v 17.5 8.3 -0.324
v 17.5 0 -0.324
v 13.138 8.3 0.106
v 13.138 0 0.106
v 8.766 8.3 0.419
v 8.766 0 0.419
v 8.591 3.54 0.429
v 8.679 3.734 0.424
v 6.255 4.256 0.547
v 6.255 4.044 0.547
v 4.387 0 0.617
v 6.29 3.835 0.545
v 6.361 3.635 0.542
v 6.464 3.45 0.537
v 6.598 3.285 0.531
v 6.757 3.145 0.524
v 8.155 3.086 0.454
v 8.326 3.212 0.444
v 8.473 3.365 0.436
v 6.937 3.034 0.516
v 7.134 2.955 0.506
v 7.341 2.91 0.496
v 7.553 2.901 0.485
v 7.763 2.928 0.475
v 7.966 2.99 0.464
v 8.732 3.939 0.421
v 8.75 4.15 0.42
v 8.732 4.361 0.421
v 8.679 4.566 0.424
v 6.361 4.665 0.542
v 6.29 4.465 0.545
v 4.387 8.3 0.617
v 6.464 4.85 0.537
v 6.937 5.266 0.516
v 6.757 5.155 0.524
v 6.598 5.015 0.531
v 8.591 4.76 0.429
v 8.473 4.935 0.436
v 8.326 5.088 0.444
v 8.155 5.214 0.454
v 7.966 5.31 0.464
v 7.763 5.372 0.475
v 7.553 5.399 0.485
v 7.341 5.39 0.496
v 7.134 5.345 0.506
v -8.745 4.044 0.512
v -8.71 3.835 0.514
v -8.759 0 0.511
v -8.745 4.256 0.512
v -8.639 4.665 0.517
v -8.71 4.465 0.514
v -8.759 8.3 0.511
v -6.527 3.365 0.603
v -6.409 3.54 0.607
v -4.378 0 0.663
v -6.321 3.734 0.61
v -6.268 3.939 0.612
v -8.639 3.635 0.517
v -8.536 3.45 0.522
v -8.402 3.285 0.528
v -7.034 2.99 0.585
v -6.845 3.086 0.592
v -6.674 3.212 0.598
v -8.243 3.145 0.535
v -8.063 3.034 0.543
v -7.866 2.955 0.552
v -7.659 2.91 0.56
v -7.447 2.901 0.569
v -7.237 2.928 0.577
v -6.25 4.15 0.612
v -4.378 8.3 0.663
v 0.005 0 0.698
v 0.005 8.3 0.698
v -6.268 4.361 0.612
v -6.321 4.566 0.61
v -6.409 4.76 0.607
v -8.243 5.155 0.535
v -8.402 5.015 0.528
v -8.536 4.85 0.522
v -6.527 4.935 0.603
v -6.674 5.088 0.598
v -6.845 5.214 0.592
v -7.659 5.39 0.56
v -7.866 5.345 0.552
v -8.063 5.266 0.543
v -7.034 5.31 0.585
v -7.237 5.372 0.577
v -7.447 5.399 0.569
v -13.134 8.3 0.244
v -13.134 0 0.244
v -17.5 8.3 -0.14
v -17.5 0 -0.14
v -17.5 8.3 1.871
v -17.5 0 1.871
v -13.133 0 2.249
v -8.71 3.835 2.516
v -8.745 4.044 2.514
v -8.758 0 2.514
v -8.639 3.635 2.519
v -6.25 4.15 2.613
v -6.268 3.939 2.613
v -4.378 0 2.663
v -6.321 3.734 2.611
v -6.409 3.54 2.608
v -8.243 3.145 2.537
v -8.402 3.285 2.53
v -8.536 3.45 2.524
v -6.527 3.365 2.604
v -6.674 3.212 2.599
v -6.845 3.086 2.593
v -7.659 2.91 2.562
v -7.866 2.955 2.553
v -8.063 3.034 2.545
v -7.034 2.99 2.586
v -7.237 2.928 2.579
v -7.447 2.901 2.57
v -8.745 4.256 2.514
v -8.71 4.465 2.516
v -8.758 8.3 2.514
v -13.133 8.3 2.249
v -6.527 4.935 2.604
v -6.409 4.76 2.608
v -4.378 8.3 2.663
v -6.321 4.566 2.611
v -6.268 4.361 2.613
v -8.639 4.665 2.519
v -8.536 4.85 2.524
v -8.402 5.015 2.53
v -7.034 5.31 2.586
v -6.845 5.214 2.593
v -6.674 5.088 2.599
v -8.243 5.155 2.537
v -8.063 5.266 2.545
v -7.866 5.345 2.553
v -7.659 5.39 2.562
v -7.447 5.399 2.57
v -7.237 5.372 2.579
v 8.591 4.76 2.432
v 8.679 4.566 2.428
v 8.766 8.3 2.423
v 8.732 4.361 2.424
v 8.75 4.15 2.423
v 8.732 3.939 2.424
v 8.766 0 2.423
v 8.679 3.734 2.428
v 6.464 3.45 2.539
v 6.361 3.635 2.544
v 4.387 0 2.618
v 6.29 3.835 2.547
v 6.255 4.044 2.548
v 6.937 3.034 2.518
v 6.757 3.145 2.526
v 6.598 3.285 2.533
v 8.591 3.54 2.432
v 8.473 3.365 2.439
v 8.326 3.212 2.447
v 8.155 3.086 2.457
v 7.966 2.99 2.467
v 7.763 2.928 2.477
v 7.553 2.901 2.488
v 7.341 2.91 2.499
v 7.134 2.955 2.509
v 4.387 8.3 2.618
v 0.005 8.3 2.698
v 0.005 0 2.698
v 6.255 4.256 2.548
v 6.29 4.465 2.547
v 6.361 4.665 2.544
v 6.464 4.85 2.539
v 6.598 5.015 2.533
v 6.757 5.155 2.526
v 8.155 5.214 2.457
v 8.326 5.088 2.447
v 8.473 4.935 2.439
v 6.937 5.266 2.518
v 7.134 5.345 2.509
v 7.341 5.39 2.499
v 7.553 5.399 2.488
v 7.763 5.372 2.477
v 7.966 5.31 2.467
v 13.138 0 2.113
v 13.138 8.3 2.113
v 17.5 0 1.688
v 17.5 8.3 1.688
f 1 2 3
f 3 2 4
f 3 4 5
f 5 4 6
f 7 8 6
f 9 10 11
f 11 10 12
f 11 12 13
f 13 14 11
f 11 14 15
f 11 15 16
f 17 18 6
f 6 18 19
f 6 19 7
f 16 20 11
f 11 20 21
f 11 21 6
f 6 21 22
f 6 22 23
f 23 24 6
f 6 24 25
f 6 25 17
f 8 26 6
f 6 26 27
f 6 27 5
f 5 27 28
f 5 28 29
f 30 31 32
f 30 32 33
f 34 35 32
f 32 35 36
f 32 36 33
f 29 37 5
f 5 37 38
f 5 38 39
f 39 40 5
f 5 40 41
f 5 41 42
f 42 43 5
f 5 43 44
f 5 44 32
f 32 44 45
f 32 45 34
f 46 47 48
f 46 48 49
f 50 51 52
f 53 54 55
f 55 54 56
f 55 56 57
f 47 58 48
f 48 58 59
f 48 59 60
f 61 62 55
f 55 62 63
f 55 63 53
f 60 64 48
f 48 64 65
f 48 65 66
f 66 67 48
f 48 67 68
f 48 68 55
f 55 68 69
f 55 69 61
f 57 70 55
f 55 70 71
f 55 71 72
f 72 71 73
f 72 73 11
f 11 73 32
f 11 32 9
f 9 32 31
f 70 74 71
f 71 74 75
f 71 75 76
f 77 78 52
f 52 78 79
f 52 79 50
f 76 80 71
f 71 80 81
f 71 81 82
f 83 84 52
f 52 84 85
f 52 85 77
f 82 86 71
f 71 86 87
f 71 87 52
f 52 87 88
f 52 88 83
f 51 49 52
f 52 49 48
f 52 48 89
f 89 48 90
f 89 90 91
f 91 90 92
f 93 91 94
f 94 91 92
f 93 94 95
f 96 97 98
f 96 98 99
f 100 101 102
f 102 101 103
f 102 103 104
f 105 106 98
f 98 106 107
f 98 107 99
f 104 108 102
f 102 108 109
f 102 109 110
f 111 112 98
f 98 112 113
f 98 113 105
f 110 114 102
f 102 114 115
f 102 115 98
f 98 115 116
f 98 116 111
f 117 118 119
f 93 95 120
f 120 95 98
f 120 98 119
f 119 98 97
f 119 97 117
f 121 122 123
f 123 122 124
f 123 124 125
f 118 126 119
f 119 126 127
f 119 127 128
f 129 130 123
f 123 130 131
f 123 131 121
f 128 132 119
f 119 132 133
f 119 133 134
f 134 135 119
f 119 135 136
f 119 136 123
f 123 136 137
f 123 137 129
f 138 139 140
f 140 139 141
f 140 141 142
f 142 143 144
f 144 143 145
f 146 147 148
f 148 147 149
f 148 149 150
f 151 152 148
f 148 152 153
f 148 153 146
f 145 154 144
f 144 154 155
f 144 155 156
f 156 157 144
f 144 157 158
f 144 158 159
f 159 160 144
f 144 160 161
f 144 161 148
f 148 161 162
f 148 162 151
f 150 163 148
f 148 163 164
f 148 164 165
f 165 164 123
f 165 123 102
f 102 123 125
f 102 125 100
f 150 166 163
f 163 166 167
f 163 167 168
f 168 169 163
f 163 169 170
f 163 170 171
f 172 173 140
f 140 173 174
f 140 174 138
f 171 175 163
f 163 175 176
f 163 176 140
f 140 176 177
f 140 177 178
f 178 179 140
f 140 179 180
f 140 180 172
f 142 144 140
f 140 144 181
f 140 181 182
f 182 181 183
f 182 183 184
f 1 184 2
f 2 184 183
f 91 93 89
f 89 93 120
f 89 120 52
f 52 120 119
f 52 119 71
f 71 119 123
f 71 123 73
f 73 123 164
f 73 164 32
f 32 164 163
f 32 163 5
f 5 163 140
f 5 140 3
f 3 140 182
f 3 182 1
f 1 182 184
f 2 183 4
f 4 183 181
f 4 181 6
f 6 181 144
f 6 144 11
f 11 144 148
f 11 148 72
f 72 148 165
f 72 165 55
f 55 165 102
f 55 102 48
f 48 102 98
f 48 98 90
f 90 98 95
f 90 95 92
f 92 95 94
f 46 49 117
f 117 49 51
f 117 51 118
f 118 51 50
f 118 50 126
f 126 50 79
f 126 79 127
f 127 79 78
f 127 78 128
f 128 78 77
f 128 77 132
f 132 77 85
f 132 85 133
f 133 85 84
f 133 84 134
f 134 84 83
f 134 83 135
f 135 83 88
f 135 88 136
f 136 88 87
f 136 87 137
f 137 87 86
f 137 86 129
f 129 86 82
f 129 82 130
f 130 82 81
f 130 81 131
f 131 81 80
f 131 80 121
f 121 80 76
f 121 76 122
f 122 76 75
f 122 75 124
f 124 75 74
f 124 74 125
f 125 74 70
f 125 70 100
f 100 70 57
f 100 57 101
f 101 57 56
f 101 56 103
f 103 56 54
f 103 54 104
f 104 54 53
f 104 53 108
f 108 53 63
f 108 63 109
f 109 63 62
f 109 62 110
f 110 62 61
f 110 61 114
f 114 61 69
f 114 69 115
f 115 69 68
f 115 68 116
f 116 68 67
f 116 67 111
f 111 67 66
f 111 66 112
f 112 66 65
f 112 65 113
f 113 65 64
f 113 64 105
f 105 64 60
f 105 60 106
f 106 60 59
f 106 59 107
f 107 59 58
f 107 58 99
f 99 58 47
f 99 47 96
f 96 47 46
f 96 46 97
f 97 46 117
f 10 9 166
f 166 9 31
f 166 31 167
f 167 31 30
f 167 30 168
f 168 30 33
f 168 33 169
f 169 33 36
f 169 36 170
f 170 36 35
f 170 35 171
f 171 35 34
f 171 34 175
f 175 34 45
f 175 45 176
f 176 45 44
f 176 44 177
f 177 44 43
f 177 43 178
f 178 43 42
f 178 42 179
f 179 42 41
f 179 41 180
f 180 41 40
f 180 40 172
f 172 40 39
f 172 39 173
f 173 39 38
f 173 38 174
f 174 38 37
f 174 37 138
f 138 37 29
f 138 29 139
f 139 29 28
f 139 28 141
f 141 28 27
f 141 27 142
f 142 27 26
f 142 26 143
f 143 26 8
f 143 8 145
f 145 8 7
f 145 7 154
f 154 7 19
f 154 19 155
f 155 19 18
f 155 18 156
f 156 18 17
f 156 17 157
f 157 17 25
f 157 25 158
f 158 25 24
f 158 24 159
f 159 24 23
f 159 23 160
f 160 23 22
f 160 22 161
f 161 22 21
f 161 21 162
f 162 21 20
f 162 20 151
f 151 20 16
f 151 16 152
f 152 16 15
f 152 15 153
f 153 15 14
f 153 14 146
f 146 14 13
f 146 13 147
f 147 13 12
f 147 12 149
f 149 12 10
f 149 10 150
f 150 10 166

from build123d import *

# Parameters (mm, degrees)
BOSS_EXTRUDE1_DEPTH     = 8.3
SKETCH2_R               = 1.25
CUT_EXTRUDE1_DEPTH      = 3.700074126
CUT_EXTRUDE1_DEPTH_BACK = 1.323830371


with BuildPart() as part:
    # Sketch1 → Boss-Extrude1 (new body)
    with BuildSketch(Plane(origin=(0, 0, 0), x_dir=(1, 0, 0), z_dir=(0, 1, 0))):
        with BuildLine():
            Line((-17.5, 0.139549674), (-17.5, -1.870543406))
            ThreePointArc((-17.5, -1.870543406), (0.004776494, -2.697812194), (17.5, -1.688491505))
            Line((17.5, -1.688491505), (17.5, 0.323830371))
            ThreePointArc((17.5, 0.323830371), (0.004893833, -0.697784194), (-17.5, 0.139549674))
        make_face()
    extrude(amount=BOSS_EXTRUDE1_DEPTH)

    # Sketch2 → Cut-Extrude1 (cut, two sides)
    with BuildSketch(Plane.XY) as cut_extrude1_sk:
        with Locations((7.5, 4.15)):
            Circle(SKETCH2_R)
        with Locations((-7.5, 4.15)):
            Circle(SKETCH2_R)
    extrude(amount=CUT_EXTRUDE1_DEPTH, mode=Mode.SUBTRACT)
    extrude(cut_extrude1_sk.sketch, amount=-CUT_EXTRUDE1_DEPTH_BACK, mode=Mode.SUBTRACT)


solid = part.part
